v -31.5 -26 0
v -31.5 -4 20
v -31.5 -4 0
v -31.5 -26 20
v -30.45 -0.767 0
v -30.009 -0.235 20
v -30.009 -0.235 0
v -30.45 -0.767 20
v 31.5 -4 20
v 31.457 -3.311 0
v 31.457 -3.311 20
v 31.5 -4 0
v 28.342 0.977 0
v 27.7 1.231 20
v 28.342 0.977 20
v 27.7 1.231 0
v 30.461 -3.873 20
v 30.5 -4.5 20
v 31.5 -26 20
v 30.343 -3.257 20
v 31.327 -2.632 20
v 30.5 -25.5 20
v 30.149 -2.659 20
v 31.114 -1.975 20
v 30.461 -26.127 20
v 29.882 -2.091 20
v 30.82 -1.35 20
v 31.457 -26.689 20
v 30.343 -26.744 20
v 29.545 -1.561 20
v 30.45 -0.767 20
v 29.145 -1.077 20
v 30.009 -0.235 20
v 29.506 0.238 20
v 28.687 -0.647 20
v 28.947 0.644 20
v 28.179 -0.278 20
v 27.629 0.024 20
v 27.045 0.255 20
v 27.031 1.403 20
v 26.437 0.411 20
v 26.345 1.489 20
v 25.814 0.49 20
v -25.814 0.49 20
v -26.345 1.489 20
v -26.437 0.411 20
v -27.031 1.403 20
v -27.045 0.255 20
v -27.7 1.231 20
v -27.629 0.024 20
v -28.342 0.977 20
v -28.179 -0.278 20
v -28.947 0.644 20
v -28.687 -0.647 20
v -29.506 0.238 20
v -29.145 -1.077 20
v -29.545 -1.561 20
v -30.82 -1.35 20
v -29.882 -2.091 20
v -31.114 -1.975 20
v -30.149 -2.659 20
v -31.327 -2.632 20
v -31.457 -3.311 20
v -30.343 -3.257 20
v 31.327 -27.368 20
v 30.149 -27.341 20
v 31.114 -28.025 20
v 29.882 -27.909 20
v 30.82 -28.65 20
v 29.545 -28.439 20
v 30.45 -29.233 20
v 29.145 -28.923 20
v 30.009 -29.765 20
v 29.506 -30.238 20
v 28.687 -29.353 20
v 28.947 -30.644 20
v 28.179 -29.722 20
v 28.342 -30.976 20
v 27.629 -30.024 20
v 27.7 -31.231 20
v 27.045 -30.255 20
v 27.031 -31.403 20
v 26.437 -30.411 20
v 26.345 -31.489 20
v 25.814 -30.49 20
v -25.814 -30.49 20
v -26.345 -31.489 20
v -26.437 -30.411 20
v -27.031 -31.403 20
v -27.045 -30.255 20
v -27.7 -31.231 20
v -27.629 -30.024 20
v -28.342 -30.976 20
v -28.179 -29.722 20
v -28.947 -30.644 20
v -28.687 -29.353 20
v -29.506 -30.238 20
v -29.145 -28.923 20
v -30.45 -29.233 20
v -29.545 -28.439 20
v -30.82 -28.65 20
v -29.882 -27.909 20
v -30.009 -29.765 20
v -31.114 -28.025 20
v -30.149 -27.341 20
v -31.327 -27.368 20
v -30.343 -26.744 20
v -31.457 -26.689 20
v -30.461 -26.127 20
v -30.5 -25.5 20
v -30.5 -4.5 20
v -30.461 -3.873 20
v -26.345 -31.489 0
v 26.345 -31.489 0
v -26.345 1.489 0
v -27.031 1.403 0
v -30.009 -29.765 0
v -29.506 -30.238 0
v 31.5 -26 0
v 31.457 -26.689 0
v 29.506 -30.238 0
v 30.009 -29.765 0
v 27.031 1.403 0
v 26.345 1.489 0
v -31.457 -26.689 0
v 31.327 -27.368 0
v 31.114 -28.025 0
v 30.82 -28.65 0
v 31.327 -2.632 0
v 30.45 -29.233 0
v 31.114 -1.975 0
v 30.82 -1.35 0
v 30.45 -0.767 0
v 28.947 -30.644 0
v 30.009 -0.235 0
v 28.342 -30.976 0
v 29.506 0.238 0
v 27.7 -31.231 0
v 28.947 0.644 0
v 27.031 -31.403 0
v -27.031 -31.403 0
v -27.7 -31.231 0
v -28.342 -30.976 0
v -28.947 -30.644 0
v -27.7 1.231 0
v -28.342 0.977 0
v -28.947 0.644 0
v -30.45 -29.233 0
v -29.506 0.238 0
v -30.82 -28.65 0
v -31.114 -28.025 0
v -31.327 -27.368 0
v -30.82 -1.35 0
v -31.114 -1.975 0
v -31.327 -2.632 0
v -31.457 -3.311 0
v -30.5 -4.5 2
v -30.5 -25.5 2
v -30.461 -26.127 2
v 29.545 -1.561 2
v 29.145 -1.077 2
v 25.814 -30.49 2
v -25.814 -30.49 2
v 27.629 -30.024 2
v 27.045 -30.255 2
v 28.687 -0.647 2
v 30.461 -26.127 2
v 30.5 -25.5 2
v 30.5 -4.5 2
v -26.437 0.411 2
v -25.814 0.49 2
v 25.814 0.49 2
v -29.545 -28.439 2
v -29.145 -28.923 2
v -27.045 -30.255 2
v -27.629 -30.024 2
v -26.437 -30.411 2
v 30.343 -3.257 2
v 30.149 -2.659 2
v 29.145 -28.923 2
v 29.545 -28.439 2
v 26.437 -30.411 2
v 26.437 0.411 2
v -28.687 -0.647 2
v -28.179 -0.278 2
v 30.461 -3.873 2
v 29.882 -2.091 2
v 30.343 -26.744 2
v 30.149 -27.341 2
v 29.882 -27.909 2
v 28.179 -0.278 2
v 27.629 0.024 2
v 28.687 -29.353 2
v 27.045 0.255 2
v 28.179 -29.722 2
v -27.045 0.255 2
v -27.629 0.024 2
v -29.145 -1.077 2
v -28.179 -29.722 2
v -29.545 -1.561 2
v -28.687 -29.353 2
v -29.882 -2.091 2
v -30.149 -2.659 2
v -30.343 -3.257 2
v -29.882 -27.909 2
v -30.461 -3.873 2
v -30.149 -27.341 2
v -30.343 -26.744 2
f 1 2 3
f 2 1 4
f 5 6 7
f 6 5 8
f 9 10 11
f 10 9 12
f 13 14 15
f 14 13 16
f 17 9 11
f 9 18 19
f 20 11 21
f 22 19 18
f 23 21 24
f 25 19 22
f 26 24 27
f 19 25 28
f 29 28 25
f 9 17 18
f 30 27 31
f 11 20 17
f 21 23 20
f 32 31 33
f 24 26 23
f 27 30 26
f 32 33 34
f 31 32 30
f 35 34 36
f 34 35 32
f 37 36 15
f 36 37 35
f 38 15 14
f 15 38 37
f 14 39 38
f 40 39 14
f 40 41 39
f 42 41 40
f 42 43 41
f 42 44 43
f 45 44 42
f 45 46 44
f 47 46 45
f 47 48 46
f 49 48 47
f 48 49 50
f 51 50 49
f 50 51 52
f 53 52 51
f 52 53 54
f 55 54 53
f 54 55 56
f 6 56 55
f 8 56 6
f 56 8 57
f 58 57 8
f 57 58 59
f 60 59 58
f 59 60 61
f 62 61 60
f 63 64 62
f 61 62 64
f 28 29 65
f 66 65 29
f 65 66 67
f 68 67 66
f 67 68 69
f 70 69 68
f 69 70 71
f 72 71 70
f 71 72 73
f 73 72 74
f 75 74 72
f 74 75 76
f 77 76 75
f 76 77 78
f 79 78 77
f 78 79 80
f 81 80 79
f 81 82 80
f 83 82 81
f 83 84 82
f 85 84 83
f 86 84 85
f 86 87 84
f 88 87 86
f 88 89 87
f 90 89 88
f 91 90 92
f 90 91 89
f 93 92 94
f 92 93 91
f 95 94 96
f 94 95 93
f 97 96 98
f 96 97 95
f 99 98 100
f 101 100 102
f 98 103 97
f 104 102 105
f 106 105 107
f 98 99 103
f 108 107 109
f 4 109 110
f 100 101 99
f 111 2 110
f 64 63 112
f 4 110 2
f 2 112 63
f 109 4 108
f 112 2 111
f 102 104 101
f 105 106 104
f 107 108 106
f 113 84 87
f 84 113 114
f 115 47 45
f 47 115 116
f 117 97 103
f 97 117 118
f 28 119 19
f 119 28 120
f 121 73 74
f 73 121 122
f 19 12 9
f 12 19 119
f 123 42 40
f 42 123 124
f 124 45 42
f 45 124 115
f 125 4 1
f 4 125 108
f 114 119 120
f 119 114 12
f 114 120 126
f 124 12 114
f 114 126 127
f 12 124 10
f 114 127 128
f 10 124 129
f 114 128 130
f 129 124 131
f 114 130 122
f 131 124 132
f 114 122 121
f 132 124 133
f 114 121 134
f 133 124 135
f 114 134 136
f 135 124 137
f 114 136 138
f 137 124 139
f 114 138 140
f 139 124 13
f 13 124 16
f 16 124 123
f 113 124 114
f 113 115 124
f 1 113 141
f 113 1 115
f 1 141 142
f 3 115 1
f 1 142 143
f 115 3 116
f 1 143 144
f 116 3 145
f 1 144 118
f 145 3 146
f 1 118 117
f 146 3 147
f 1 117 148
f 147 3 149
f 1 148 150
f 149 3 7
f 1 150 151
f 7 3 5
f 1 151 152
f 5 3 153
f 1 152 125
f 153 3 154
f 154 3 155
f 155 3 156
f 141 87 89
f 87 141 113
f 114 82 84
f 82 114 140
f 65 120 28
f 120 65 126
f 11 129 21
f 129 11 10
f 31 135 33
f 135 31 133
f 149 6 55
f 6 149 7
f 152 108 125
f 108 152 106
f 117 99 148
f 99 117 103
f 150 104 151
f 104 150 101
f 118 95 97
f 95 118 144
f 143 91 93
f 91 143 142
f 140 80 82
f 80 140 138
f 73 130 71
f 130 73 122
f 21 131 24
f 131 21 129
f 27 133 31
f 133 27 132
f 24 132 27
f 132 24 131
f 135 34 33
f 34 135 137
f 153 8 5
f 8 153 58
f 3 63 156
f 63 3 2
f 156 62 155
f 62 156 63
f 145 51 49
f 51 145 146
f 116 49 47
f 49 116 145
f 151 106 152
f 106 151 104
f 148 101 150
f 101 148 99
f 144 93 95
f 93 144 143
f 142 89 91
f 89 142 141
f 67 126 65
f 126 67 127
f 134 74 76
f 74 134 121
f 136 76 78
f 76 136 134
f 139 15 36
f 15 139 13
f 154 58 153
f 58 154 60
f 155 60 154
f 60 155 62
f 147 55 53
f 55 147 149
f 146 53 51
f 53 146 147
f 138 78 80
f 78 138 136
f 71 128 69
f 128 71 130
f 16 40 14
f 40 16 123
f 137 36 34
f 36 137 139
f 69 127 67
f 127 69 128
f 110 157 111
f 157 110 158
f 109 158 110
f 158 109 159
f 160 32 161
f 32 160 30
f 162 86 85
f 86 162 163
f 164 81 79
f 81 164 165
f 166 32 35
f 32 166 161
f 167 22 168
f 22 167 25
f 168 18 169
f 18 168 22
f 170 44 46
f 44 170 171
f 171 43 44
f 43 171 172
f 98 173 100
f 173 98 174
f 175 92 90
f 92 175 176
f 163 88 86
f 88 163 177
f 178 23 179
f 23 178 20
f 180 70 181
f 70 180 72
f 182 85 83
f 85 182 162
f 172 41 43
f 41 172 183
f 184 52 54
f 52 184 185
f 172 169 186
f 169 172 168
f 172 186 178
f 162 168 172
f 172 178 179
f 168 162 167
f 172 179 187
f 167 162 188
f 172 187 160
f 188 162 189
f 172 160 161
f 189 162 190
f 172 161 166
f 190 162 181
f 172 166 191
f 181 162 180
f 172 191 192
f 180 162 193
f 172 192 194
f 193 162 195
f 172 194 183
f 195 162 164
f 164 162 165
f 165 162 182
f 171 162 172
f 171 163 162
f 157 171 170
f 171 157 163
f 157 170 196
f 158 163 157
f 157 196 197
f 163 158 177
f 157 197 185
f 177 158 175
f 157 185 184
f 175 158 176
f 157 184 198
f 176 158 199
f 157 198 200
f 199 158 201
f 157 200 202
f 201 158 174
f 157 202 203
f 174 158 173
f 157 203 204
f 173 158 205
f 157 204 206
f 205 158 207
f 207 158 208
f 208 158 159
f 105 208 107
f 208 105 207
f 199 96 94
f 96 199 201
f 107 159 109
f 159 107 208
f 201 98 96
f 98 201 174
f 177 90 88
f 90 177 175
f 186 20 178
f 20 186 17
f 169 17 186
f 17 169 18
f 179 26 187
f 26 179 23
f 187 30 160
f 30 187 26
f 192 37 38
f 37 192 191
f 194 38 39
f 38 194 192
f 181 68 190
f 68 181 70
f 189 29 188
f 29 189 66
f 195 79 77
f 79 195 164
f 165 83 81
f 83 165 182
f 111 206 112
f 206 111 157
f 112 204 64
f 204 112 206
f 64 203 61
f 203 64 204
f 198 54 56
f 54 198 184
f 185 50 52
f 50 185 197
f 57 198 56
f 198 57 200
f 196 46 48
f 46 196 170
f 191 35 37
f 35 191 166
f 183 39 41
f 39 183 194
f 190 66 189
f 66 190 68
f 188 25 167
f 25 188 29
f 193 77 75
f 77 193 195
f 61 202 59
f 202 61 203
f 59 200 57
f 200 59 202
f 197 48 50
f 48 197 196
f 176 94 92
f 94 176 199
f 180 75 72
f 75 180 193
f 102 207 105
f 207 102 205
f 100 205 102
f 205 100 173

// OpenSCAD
$fn = 50;


difference() {
	union() {
		translate(v = [0, -15.0000000000, 0]) {
			hull() {
				translate(v = [-26.0000000000, 11.0000000000, 0]) {
					cylinder(h = 20, r = 5.5000000000);
				}
				translate(v = [26.0000000000, 11.0000000000, 0]) {
					cylinder(h = 20, r = 5.5000000000);
				}
				translate(v = [-26.0000000000, -11.0000000000, 0]) {
					cylinder(h = 20, r = 5.5000000000);
				}
				translate(v = [26.0000000000, -11.0000000000, 0]) {
					cylinder(h = 20, r = 5.5000000000);
				}
			}
		}
	}
	union() {
		translate(v = [0, -15.0000000000, 2]) {
			hull() {
				translate(v = [-25.5000000000, 10.5000000000, 0]) {
					cylinder(h = 40, r = 5);
				}
				translate(v = [25.5000000000, 10.5000000000, 0]) {
					cylinder(h = 40, r = 5);
				}
				translate(v = [-25.5000000000, -10.5000000000, 0]) {
					cylinder(h = 40, r = 5);
				}
				translate(v = [25.5000000000, -10.5000000000, 0]) {
					cylinder(h = 40, r = 5);
				}
			}
		}
	}
}
